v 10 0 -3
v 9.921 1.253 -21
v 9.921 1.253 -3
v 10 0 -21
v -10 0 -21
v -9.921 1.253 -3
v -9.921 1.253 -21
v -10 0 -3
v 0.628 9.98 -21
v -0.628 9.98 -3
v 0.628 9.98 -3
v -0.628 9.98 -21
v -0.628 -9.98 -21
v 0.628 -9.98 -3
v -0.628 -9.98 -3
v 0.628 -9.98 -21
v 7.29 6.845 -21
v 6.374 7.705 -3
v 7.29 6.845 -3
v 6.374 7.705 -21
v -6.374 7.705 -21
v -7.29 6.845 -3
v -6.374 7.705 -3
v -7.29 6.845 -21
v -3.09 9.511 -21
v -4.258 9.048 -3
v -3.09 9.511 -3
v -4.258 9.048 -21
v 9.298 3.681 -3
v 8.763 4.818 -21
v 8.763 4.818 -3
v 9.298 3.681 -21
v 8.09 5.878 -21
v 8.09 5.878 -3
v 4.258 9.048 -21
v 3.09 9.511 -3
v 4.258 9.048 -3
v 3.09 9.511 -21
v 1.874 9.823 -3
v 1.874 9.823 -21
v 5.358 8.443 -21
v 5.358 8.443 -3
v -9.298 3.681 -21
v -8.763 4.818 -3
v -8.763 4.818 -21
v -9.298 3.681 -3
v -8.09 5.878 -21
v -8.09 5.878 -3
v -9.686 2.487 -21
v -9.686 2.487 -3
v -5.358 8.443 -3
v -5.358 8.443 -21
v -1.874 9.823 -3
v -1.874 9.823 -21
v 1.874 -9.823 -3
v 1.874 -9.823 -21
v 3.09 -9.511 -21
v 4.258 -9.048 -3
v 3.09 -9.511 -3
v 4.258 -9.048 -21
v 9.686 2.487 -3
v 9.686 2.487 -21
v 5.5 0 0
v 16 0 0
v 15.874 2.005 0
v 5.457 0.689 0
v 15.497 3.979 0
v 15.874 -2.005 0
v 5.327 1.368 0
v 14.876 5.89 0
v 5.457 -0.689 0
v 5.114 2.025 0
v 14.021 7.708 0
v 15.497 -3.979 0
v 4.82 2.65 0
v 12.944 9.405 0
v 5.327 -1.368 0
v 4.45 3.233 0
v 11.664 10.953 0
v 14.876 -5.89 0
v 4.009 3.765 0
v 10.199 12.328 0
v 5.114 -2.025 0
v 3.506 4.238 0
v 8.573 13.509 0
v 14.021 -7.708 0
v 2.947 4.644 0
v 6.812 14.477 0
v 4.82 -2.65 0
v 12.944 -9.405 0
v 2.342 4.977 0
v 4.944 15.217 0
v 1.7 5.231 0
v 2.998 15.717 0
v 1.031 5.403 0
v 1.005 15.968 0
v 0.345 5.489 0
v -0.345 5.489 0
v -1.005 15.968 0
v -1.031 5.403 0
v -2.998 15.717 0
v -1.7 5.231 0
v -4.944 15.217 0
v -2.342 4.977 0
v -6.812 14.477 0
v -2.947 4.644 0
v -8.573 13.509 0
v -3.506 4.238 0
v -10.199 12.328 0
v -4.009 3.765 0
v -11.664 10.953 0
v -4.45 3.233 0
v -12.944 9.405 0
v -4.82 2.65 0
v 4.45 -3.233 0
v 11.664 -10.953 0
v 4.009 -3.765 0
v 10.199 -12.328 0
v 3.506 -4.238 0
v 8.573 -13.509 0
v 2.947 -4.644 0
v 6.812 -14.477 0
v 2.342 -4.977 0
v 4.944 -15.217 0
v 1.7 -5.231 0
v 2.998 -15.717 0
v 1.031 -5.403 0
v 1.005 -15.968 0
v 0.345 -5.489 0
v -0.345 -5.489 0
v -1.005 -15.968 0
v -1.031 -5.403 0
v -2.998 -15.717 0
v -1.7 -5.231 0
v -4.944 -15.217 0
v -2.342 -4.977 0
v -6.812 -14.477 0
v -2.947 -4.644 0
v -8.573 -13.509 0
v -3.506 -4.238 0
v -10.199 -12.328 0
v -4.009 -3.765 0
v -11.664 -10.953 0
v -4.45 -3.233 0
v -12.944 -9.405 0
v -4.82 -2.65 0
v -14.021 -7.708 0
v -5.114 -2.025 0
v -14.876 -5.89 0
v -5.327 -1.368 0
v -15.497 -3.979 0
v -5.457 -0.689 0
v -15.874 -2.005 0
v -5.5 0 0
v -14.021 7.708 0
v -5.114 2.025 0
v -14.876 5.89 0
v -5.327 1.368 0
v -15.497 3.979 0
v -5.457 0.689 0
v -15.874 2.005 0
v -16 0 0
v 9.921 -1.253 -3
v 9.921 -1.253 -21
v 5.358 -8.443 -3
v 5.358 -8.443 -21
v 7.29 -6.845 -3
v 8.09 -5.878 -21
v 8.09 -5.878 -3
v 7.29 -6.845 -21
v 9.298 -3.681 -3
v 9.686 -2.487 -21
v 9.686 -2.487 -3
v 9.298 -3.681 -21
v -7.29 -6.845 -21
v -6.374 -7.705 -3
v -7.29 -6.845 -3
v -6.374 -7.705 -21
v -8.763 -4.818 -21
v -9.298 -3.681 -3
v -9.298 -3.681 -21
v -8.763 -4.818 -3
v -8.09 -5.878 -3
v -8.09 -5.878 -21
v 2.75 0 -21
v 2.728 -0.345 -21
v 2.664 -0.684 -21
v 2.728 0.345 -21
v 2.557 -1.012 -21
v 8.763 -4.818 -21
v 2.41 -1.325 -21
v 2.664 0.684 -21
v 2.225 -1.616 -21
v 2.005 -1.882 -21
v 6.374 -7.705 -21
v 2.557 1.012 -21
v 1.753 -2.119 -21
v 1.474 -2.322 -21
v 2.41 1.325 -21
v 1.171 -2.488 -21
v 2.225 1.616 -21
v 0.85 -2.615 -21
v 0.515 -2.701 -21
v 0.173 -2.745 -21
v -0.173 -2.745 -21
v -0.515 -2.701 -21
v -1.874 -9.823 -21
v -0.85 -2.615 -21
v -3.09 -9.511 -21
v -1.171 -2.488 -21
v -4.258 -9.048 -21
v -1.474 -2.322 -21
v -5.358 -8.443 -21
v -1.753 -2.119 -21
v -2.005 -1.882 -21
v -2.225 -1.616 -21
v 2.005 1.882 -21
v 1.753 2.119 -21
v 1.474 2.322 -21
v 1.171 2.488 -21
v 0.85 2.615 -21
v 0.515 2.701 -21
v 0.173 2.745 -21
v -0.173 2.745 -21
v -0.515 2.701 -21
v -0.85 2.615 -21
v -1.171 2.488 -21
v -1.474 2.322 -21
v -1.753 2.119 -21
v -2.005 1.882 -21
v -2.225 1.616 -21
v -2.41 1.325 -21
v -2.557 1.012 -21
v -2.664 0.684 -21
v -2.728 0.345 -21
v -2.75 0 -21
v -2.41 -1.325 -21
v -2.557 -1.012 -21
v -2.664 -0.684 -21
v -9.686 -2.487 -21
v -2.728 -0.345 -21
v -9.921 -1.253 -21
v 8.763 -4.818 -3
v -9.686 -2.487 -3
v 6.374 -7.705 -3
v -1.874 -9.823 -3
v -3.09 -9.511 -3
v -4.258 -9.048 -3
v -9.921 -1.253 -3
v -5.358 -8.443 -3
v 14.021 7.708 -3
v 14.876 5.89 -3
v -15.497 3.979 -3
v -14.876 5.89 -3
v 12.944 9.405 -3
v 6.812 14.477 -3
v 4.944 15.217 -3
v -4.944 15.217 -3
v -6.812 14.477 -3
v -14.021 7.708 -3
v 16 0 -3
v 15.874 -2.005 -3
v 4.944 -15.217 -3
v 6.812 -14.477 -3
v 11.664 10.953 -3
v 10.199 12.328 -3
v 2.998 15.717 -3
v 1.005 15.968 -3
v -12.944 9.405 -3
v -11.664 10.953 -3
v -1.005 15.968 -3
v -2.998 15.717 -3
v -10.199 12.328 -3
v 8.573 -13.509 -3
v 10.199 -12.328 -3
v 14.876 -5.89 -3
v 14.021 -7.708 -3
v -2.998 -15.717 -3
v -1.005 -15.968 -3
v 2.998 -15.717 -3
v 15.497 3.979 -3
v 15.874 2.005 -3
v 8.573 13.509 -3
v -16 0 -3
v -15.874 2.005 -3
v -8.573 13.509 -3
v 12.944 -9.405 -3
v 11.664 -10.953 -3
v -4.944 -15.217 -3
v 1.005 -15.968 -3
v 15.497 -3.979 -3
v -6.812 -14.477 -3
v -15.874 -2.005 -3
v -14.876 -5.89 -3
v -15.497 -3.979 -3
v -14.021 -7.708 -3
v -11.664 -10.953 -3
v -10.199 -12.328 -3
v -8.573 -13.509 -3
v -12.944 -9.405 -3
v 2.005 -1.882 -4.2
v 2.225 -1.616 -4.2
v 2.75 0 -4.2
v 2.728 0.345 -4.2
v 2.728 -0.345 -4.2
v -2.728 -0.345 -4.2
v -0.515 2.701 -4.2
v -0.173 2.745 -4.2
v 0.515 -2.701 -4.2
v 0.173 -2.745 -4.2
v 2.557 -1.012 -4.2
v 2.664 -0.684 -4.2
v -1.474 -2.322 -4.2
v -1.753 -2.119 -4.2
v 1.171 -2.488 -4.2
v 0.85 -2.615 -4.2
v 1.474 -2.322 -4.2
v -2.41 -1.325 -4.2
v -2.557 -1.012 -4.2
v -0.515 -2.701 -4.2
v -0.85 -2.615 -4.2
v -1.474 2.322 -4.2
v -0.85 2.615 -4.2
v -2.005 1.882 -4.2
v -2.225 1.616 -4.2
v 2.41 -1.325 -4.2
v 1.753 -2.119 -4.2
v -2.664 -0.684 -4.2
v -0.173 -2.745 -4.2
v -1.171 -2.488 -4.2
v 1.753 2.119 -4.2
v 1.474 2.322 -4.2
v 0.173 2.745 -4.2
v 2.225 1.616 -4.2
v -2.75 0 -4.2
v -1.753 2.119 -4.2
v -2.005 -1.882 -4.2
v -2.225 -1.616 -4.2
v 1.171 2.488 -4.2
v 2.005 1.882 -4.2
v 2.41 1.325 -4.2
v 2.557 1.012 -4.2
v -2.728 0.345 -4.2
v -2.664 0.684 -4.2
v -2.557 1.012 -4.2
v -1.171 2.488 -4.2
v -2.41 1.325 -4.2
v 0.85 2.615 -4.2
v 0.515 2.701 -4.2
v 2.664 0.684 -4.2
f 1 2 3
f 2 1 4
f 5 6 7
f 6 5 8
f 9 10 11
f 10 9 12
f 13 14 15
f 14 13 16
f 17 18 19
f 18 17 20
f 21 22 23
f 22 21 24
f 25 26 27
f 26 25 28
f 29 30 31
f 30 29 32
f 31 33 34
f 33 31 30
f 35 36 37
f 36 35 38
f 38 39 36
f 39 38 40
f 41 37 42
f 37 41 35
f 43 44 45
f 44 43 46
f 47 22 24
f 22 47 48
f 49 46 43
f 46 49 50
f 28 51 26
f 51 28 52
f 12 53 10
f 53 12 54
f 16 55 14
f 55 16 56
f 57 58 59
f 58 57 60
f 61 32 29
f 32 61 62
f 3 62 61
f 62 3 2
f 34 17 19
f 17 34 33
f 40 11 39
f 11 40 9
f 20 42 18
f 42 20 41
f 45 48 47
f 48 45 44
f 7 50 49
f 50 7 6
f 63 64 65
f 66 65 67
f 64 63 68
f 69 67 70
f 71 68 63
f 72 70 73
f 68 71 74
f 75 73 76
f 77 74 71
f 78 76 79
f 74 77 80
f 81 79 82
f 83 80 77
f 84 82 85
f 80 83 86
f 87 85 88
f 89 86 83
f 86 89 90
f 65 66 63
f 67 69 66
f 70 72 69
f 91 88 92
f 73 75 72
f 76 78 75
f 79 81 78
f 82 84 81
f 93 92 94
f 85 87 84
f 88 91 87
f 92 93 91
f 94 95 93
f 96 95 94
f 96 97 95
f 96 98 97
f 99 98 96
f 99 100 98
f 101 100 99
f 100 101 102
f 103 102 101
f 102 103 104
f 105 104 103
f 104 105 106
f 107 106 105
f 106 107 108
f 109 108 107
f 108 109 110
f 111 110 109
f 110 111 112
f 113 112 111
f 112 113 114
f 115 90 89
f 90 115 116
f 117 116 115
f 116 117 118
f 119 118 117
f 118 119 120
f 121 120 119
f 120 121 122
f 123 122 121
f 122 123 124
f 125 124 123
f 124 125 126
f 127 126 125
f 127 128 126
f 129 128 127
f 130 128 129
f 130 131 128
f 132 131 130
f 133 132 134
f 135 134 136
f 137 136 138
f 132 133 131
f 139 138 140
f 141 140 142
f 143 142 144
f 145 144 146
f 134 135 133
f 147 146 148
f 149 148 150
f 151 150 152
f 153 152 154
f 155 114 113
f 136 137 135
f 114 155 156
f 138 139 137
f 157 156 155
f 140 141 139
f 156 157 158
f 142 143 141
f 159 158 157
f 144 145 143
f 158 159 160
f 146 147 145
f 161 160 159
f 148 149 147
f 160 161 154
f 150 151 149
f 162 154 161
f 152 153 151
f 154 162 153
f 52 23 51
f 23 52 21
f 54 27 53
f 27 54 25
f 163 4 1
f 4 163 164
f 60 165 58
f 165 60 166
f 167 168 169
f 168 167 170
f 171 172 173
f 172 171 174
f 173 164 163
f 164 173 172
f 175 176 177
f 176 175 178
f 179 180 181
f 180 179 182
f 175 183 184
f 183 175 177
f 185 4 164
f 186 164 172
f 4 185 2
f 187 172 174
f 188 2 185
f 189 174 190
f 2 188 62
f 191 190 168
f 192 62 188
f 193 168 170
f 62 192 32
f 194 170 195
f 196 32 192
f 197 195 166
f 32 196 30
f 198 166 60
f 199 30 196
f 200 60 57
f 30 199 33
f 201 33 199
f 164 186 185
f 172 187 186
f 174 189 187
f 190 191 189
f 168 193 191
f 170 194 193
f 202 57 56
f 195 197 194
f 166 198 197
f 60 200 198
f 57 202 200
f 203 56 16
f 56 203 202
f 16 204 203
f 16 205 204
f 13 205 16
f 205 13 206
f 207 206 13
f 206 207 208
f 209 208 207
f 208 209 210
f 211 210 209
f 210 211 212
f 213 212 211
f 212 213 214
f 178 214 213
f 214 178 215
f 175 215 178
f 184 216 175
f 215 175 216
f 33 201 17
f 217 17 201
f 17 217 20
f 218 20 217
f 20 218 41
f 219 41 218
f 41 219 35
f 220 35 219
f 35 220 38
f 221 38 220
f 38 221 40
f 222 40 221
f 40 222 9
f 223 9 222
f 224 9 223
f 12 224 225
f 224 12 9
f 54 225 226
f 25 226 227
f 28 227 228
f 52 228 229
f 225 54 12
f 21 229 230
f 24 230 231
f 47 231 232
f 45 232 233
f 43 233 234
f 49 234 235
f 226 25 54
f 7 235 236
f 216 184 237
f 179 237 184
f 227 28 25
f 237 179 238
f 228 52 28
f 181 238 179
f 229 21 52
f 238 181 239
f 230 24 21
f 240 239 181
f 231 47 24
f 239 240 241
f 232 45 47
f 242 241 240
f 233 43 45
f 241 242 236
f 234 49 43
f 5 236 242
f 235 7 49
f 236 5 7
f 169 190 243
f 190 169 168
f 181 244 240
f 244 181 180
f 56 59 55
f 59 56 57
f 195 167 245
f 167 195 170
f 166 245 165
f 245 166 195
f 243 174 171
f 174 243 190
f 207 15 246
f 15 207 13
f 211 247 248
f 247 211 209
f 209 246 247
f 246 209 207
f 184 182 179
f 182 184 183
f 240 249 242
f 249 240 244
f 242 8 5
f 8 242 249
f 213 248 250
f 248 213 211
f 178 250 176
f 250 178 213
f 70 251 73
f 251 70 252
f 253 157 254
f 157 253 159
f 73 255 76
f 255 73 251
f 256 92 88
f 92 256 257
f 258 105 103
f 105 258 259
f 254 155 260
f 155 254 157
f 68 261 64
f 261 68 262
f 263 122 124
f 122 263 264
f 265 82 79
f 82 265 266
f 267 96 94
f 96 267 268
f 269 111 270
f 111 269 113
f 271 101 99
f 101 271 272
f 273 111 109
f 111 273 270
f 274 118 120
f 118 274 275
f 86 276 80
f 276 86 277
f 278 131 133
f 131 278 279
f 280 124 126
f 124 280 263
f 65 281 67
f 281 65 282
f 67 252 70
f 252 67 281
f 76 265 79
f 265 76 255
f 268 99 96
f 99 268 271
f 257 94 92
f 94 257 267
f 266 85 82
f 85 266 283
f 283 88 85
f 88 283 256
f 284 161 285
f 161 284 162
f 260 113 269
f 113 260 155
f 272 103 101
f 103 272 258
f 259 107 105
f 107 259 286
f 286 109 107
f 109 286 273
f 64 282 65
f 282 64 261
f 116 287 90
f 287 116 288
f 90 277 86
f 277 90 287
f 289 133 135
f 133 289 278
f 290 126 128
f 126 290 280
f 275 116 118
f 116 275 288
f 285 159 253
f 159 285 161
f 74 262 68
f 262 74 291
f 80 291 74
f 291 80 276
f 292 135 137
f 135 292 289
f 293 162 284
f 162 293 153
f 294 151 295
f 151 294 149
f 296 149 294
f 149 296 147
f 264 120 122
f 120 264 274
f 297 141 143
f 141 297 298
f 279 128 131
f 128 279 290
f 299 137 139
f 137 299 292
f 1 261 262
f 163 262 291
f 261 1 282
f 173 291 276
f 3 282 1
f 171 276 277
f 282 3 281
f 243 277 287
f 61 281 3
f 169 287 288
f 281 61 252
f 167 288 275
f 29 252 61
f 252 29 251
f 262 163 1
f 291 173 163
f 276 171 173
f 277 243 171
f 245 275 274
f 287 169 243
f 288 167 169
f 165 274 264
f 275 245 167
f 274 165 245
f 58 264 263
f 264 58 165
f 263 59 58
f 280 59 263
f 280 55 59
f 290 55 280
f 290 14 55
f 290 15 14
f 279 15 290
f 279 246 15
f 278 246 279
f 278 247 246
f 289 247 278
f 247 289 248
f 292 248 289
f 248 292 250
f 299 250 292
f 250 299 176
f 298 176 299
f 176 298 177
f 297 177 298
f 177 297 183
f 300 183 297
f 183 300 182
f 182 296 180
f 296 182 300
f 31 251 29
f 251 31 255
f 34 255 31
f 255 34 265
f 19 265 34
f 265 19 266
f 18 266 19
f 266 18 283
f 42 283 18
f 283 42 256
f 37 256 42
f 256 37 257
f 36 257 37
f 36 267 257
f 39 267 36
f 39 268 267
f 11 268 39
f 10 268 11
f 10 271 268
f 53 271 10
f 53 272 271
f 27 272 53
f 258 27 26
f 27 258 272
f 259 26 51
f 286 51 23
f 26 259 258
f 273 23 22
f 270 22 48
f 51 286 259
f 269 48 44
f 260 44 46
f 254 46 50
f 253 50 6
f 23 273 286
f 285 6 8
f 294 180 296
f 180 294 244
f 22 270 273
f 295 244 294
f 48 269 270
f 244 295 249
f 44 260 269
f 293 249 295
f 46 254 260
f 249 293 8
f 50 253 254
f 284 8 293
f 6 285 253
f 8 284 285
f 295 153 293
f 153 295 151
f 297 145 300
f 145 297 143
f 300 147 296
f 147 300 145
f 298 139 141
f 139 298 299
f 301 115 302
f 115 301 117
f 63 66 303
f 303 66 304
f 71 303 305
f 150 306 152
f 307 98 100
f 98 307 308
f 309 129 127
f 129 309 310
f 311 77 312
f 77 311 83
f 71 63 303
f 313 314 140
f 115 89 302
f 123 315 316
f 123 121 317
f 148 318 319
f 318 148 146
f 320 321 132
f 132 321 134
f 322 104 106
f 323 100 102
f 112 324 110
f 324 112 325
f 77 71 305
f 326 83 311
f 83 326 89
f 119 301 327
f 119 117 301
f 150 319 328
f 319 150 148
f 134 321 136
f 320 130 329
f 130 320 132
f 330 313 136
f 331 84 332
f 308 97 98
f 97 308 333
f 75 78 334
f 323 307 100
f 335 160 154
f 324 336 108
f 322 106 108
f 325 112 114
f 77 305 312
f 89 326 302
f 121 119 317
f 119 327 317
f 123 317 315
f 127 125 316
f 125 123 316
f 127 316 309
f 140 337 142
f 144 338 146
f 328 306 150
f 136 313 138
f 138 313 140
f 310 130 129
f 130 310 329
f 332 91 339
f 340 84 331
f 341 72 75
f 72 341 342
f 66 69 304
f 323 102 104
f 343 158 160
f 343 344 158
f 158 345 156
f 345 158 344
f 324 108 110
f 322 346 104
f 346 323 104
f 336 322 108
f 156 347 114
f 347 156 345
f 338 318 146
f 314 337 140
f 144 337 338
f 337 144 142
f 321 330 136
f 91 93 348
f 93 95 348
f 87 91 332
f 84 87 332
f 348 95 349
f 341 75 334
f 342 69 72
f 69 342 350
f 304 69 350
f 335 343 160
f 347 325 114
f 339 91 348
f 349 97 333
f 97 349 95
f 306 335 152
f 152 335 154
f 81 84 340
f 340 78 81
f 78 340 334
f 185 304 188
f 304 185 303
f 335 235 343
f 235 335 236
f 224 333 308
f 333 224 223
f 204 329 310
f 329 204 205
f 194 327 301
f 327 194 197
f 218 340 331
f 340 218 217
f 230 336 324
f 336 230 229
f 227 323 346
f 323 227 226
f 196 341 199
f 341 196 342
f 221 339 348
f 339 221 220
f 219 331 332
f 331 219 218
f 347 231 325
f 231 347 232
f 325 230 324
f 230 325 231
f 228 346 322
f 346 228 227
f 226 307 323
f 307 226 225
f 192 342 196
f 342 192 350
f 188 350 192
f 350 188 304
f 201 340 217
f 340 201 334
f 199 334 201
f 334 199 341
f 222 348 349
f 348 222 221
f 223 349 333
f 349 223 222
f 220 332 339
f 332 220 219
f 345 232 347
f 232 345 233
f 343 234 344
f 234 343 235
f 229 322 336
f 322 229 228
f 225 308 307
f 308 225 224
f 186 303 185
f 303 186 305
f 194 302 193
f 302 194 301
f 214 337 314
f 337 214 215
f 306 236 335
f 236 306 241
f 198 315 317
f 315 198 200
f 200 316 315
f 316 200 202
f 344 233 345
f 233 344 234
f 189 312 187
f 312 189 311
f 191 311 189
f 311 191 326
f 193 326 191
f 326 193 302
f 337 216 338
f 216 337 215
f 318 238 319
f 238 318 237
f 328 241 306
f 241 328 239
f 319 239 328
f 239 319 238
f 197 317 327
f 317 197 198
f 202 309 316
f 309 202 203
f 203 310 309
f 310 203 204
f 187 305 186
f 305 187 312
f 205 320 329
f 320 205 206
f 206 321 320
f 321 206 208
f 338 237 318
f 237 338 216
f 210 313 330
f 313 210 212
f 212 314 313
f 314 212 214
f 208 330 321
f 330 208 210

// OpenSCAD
$fn = 50;


difference() {
	union() {
		translate(v = [0, 0, -21.0000000000]) {
			cylinder(h = 21, r = 10.0000000000);
		}
		translate(v = [0, 0, -3.0000000000]) {
			cylinder(h = 3, r = 16.0000000000);
		}
	}
	union() {
		translate(v = [0, 0, 0]) {
			rotate(a = [0, 0, 0]) {
				difference() {
					union() {
						#translate(v = [0, 0, -21.0000000000]) {
							cylinder(h = 21, r = 2.2500000000);
						}
						#translate(v = [0, 0, -4.2000000000]) {
							cylinder(h = 4.2000000000, r1 = 2.7500000000, r2 = 5.5000000000);
						}
						#translate(v = [0, 0, -21.0000000000]) {
							cylinder(h = 21, r = 2.7500000000);
						}
						#translate(v = [0, 0, -21.0000000000]) {
							cylinder(h = 21, r = 2.2500000000);
						}
					}
					union();
				}
			}
		}
	}
}
